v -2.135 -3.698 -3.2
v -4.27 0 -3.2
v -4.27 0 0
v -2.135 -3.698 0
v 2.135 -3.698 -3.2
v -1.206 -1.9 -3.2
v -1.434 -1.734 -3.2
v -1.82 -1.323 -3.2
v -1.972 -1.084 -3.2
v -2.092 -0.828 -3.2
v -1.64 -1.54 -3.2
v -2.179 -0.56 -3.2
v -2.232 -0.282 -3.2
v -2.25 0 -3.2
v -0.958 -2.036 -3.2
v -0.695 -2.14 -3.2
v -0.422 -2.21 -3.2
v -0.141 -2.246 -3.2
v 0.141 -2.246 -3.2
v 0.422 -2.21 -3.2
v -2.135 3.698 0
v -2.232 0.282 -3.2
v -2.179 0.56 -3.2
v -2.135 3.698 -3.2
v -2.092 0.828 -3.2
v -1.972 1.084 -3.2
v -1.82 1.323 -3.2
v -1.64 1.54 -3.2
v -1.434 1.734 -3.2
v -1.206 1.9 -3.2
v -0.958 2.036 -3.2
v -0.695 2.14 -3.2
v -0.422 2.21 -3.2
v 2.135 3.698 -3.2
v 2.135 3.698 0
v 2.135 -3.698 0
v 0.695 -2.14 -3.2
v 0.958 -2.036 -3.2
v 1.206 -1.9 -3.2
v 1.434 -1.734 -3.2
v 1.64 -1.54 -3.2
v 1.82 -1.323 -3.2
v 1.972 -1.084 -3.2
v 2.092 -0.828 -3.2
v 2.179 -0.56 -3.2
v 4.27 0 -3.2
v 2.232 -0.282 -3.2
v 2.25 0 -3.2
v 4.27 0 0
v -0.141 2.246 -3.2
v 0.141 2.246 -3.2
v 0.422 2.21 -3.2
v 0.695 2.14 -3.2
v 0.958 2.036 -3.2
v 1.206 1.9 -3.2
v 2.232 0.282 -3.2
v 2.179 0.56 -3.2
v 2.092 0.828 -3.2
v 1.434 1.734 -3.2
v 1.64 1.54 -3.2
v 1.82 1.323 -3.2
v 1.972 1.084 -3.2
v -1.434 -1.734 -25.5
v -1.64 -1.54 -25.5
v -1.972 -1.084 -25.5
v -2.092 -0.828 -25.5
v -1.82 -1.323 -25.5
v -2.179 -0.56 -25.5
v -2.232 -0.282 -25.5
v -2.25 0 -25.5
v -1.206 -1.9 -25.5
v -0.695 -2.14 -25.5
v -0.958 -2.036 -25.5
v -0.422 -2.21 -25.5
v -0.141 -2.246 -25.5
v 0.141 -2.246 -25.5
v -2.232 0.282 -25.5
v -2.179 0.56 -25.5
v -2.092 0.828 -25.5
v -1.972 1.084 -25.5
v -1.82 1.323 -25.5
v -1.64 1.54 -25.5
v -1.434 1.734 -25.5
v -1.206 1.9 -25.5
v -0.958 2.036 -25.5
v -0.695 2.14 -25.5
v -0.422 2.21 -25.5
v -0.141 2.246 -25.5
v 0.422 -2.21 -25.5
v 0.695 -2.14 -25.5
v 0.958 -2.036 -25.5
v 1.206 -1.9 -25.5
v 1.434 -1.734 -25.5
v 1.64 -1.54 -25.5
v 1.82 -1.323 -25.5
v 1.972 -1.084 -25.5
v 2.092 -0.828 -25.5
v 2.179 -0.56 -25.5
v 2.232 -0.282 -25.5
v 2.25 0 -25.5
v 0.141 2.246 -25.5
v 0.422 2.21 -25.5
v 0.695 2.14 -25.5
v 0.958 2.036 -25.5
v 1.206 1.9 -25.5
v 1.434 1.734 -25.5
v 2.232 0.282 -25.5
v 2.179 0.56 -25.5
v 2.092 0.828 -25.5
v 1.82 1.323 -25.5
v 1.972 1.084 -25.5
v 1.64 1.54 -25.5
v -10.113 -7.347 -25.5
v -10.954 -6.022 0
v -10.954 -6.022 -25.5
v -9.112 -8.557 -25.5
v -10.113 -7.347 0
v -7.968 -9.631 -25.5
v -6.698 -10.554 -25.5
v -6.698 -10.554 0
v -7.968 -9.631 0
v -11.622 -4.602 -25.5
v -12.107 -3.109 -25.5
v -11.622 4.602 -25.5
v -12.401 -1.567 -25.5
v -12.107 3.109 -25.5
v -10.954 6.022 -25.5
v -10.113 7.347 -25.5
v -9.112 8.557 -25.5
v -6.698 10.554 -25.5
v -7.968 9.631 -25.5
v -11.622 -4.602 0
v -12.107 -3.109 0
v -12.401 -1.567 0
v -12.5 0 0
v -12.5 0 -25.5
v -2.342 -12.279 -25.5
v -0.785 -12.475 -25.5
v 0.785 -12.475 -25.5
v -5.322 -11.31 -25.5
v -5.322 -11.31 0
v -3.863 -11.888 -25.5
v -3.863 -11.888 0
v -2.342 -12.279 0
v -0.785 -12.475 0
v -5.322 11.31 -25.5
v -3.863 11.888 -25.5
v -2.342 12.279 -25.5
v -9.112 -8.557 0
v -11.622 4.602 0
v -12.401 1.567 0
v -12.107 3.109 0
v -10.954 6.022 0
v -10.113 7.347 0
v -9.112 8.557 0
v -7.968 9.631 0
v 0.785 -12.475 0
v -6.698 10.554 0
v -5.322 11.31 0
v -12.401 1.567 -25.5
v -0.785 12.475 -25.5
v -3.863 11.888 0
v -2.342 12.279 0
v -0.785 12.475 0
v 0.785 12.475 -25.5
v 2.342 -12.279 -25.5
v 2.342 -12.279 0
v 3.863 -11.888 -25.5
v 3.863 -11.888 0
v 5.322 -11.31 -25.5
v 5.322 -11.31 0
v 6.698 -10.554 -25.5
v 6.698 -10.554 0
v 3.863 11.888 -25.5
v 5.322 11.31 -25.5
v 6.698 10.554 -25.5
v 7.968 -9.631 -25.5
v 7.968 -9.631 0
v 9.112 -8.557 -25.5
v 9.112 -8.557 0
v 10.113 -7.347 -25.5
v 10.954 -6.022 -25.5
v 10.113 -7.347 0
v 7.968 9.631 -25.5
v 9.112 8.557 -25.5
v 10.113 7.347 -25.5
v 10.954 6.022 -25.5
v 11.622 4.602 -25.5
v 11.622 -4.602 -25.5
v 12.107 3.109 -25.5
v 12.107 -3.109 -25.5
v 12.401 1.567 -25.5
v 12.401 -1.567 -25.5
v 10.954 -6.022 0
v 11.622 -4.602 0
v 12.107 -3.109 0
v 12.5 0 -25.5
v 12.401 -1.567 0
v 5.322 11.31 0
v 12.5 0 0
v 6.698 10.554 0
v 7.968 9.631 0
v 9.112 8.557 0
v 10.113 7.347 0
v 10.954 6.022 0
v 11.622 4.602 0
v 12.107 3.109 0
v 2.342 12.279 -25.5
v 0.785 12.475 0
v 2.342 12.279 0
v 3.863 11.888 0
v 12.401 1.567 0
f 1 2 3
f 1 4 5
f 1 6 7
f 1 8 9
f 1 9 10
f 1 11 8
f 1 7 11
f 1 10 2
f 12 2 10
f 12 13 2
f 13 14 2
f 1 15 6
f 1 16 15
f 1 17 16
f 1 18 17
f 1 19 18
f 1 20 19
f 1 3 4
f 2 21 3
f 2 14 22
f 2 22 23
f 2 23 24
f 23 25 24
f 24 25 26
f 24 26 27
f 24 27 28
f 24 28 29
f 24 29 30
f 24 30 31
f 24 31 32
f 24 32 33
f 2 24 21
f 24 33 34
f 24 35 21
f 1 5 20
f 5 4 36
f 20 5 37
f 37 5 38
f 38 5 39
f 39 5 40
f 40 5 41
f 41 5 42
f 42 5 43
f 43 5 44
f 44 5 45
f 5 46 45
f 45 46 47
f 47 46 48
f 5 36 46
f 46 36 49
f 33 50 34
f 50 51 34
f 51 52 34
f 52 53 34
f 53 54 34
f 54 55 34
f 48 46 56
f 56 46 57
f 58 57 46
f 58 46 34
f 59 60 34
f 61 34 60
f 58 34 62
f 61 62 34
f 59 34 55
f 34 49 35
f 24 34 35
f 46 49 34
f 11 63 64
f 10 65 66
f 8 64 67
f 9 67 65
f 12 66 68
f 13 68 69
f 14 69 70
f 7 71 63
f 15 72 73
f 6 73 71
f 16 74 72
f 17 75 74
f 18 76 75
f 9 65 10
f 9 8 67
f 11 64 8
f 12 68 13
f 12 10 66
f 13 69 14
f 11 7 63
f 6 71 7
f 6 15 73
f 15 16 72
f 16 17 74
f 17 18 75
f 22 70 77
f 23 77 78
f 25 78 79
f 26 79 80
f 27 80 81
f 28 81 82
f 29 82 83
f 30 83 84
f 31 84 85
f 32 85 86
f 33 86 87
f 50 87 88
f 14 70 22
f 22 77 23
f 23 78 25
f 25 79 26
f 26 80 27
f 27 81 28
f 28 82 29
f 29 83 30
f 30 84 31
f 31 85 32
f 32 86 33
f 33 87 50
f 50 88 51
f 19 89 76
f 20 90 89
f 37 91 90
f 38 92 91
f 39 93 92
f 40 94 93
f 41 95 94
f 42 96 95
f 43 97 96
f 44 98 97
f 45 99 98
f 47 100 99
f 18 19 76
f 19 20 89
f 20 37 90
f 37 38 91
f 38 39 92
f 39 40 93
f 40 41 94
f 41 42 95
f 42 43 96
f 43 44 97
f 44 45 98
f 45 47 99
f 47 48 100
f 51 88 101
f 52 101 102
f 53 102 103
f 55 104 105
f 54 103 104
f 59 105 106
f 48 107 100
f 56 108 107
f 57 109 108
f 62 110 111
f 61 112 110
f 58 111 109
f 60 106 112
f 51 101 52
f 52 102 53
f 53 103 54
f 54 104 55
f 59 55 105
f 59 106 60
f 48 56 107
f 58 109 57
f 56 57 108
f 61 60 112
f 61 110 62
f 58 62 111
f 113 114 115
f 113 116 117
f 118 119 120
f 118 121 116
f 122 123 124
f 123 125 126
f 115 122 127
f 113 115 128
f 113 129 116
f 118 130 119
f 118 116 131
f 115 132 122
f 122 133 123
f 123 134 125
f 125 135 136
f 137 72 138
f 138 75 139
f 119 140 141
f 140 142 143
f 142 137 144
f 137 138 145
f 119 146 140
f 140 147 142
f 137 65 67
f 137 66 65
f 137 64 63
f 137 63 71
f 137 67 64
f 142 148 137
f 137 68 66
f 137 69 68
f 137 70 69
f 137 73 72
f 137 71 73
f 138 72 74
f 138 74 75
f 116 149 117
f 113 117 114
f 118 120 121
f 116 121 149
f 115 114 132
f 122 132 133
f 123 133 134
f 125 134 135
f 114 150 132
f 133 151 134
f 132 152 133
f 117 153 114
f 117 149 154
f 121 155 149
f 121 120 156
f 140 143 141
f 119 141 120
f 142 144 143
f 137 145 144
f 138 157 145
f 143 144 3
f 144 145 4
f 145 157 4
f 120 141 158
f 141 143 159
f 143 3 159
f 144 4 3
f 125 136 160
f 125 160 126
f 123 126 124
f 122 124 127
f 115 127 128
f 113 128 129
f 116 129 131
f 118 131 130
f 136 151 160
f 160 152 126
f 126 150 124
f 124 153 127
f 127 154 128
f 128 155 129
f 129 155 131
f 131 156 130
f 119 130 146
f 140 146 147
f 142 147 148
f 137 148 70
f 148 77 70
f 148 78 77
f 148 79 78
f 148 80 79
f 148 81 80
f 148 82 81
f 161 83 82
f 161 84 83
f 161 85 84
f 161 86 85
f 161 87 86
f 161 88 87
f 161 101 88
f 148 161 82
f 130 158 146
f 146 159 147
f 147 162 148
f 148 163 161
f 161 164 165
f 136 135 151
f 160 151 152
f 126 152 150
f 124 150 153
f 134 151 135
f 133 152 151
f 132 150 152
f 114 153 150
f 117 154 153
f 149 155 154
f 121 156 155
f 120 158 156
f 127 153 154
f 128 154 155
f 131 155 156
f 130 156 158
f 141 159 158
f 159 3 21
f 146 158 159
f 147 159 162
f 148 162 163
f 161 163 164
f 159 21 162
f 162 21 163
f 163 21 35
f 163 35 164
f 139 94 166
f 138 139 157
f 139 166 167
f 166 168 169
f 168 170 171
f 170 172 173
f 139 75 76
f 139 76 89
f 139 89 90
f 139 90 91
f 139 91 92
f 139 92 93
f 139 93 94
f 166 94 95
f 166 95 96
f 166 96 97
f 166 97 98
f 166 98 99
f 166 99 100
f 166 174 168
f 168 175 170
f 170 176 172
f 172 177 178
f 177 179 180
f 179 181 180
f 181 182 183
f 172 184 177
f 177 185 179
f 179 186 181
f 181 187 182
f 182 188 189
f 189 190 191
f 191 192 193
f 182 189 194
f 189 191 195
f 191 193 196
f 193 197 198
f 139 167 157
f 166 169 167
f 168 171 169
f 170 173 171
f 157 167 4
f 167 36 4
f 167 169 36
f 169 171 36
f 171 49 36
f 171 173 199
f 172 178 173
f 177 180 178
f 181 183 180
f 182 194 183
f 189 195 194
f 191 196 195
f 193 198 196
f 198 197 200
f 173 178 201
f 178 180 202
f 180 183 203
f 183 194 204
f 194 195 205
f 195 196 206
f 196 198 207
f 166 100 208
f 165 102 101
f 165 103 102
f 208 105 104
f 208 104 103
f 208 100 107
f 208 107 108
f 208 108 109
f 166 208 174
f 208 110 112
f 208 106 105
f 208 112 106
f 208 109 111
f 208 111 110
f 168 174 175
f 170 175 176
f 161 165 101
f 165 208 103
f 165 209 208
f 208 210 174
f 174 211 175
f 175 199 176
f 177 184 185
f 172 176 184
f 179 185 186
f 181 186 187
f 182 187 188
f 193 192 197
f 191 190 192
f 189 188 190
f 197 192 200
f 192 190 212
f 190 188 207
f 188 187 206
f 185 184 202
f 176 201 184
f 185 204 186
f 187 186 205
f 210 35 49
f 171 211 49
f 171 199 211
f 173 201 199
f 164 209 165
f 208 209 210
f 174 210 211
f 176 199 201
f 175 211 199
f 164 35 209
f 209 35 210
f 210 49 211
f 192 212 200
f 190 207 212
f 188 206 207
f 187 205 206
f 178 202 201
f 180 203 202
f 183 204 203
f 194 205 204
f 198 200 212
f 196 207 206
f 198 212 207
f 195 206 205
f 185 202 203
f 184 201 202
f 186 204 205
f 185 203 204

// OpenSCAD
$fn = 50;

difference() {
	union() {
		translate(v = [0, 0, -25.5]) {
			cylinder(h = 25.5, r = 12.5);
		}
	}
	union() {
		translate(v = [0, 0, 0]) {
			rotate(a = [0, 0, 0]) {
				difference() {
					union() {
						translate(v = [0, 0, -3.2]) {
							linear_extrude(height = 3.2) {
								polygon(points = [[4.2698, 0.0], [2.1349000000000005, 3.697755269078796], [-2.134899999999999, 3.6977552690787965], [-4.2698, 5.228996902999369e-16], [-2.134900000000002, -3.6977552690787956], [2.1348999999999974, -3.697755269078798]]);
							}
						}
					}
					union();
				}
			}
		}
		#translate(v = [0, 0, -100.0]) {
			cylinder(h = 200, r = 2.25);
		}
	}
}
